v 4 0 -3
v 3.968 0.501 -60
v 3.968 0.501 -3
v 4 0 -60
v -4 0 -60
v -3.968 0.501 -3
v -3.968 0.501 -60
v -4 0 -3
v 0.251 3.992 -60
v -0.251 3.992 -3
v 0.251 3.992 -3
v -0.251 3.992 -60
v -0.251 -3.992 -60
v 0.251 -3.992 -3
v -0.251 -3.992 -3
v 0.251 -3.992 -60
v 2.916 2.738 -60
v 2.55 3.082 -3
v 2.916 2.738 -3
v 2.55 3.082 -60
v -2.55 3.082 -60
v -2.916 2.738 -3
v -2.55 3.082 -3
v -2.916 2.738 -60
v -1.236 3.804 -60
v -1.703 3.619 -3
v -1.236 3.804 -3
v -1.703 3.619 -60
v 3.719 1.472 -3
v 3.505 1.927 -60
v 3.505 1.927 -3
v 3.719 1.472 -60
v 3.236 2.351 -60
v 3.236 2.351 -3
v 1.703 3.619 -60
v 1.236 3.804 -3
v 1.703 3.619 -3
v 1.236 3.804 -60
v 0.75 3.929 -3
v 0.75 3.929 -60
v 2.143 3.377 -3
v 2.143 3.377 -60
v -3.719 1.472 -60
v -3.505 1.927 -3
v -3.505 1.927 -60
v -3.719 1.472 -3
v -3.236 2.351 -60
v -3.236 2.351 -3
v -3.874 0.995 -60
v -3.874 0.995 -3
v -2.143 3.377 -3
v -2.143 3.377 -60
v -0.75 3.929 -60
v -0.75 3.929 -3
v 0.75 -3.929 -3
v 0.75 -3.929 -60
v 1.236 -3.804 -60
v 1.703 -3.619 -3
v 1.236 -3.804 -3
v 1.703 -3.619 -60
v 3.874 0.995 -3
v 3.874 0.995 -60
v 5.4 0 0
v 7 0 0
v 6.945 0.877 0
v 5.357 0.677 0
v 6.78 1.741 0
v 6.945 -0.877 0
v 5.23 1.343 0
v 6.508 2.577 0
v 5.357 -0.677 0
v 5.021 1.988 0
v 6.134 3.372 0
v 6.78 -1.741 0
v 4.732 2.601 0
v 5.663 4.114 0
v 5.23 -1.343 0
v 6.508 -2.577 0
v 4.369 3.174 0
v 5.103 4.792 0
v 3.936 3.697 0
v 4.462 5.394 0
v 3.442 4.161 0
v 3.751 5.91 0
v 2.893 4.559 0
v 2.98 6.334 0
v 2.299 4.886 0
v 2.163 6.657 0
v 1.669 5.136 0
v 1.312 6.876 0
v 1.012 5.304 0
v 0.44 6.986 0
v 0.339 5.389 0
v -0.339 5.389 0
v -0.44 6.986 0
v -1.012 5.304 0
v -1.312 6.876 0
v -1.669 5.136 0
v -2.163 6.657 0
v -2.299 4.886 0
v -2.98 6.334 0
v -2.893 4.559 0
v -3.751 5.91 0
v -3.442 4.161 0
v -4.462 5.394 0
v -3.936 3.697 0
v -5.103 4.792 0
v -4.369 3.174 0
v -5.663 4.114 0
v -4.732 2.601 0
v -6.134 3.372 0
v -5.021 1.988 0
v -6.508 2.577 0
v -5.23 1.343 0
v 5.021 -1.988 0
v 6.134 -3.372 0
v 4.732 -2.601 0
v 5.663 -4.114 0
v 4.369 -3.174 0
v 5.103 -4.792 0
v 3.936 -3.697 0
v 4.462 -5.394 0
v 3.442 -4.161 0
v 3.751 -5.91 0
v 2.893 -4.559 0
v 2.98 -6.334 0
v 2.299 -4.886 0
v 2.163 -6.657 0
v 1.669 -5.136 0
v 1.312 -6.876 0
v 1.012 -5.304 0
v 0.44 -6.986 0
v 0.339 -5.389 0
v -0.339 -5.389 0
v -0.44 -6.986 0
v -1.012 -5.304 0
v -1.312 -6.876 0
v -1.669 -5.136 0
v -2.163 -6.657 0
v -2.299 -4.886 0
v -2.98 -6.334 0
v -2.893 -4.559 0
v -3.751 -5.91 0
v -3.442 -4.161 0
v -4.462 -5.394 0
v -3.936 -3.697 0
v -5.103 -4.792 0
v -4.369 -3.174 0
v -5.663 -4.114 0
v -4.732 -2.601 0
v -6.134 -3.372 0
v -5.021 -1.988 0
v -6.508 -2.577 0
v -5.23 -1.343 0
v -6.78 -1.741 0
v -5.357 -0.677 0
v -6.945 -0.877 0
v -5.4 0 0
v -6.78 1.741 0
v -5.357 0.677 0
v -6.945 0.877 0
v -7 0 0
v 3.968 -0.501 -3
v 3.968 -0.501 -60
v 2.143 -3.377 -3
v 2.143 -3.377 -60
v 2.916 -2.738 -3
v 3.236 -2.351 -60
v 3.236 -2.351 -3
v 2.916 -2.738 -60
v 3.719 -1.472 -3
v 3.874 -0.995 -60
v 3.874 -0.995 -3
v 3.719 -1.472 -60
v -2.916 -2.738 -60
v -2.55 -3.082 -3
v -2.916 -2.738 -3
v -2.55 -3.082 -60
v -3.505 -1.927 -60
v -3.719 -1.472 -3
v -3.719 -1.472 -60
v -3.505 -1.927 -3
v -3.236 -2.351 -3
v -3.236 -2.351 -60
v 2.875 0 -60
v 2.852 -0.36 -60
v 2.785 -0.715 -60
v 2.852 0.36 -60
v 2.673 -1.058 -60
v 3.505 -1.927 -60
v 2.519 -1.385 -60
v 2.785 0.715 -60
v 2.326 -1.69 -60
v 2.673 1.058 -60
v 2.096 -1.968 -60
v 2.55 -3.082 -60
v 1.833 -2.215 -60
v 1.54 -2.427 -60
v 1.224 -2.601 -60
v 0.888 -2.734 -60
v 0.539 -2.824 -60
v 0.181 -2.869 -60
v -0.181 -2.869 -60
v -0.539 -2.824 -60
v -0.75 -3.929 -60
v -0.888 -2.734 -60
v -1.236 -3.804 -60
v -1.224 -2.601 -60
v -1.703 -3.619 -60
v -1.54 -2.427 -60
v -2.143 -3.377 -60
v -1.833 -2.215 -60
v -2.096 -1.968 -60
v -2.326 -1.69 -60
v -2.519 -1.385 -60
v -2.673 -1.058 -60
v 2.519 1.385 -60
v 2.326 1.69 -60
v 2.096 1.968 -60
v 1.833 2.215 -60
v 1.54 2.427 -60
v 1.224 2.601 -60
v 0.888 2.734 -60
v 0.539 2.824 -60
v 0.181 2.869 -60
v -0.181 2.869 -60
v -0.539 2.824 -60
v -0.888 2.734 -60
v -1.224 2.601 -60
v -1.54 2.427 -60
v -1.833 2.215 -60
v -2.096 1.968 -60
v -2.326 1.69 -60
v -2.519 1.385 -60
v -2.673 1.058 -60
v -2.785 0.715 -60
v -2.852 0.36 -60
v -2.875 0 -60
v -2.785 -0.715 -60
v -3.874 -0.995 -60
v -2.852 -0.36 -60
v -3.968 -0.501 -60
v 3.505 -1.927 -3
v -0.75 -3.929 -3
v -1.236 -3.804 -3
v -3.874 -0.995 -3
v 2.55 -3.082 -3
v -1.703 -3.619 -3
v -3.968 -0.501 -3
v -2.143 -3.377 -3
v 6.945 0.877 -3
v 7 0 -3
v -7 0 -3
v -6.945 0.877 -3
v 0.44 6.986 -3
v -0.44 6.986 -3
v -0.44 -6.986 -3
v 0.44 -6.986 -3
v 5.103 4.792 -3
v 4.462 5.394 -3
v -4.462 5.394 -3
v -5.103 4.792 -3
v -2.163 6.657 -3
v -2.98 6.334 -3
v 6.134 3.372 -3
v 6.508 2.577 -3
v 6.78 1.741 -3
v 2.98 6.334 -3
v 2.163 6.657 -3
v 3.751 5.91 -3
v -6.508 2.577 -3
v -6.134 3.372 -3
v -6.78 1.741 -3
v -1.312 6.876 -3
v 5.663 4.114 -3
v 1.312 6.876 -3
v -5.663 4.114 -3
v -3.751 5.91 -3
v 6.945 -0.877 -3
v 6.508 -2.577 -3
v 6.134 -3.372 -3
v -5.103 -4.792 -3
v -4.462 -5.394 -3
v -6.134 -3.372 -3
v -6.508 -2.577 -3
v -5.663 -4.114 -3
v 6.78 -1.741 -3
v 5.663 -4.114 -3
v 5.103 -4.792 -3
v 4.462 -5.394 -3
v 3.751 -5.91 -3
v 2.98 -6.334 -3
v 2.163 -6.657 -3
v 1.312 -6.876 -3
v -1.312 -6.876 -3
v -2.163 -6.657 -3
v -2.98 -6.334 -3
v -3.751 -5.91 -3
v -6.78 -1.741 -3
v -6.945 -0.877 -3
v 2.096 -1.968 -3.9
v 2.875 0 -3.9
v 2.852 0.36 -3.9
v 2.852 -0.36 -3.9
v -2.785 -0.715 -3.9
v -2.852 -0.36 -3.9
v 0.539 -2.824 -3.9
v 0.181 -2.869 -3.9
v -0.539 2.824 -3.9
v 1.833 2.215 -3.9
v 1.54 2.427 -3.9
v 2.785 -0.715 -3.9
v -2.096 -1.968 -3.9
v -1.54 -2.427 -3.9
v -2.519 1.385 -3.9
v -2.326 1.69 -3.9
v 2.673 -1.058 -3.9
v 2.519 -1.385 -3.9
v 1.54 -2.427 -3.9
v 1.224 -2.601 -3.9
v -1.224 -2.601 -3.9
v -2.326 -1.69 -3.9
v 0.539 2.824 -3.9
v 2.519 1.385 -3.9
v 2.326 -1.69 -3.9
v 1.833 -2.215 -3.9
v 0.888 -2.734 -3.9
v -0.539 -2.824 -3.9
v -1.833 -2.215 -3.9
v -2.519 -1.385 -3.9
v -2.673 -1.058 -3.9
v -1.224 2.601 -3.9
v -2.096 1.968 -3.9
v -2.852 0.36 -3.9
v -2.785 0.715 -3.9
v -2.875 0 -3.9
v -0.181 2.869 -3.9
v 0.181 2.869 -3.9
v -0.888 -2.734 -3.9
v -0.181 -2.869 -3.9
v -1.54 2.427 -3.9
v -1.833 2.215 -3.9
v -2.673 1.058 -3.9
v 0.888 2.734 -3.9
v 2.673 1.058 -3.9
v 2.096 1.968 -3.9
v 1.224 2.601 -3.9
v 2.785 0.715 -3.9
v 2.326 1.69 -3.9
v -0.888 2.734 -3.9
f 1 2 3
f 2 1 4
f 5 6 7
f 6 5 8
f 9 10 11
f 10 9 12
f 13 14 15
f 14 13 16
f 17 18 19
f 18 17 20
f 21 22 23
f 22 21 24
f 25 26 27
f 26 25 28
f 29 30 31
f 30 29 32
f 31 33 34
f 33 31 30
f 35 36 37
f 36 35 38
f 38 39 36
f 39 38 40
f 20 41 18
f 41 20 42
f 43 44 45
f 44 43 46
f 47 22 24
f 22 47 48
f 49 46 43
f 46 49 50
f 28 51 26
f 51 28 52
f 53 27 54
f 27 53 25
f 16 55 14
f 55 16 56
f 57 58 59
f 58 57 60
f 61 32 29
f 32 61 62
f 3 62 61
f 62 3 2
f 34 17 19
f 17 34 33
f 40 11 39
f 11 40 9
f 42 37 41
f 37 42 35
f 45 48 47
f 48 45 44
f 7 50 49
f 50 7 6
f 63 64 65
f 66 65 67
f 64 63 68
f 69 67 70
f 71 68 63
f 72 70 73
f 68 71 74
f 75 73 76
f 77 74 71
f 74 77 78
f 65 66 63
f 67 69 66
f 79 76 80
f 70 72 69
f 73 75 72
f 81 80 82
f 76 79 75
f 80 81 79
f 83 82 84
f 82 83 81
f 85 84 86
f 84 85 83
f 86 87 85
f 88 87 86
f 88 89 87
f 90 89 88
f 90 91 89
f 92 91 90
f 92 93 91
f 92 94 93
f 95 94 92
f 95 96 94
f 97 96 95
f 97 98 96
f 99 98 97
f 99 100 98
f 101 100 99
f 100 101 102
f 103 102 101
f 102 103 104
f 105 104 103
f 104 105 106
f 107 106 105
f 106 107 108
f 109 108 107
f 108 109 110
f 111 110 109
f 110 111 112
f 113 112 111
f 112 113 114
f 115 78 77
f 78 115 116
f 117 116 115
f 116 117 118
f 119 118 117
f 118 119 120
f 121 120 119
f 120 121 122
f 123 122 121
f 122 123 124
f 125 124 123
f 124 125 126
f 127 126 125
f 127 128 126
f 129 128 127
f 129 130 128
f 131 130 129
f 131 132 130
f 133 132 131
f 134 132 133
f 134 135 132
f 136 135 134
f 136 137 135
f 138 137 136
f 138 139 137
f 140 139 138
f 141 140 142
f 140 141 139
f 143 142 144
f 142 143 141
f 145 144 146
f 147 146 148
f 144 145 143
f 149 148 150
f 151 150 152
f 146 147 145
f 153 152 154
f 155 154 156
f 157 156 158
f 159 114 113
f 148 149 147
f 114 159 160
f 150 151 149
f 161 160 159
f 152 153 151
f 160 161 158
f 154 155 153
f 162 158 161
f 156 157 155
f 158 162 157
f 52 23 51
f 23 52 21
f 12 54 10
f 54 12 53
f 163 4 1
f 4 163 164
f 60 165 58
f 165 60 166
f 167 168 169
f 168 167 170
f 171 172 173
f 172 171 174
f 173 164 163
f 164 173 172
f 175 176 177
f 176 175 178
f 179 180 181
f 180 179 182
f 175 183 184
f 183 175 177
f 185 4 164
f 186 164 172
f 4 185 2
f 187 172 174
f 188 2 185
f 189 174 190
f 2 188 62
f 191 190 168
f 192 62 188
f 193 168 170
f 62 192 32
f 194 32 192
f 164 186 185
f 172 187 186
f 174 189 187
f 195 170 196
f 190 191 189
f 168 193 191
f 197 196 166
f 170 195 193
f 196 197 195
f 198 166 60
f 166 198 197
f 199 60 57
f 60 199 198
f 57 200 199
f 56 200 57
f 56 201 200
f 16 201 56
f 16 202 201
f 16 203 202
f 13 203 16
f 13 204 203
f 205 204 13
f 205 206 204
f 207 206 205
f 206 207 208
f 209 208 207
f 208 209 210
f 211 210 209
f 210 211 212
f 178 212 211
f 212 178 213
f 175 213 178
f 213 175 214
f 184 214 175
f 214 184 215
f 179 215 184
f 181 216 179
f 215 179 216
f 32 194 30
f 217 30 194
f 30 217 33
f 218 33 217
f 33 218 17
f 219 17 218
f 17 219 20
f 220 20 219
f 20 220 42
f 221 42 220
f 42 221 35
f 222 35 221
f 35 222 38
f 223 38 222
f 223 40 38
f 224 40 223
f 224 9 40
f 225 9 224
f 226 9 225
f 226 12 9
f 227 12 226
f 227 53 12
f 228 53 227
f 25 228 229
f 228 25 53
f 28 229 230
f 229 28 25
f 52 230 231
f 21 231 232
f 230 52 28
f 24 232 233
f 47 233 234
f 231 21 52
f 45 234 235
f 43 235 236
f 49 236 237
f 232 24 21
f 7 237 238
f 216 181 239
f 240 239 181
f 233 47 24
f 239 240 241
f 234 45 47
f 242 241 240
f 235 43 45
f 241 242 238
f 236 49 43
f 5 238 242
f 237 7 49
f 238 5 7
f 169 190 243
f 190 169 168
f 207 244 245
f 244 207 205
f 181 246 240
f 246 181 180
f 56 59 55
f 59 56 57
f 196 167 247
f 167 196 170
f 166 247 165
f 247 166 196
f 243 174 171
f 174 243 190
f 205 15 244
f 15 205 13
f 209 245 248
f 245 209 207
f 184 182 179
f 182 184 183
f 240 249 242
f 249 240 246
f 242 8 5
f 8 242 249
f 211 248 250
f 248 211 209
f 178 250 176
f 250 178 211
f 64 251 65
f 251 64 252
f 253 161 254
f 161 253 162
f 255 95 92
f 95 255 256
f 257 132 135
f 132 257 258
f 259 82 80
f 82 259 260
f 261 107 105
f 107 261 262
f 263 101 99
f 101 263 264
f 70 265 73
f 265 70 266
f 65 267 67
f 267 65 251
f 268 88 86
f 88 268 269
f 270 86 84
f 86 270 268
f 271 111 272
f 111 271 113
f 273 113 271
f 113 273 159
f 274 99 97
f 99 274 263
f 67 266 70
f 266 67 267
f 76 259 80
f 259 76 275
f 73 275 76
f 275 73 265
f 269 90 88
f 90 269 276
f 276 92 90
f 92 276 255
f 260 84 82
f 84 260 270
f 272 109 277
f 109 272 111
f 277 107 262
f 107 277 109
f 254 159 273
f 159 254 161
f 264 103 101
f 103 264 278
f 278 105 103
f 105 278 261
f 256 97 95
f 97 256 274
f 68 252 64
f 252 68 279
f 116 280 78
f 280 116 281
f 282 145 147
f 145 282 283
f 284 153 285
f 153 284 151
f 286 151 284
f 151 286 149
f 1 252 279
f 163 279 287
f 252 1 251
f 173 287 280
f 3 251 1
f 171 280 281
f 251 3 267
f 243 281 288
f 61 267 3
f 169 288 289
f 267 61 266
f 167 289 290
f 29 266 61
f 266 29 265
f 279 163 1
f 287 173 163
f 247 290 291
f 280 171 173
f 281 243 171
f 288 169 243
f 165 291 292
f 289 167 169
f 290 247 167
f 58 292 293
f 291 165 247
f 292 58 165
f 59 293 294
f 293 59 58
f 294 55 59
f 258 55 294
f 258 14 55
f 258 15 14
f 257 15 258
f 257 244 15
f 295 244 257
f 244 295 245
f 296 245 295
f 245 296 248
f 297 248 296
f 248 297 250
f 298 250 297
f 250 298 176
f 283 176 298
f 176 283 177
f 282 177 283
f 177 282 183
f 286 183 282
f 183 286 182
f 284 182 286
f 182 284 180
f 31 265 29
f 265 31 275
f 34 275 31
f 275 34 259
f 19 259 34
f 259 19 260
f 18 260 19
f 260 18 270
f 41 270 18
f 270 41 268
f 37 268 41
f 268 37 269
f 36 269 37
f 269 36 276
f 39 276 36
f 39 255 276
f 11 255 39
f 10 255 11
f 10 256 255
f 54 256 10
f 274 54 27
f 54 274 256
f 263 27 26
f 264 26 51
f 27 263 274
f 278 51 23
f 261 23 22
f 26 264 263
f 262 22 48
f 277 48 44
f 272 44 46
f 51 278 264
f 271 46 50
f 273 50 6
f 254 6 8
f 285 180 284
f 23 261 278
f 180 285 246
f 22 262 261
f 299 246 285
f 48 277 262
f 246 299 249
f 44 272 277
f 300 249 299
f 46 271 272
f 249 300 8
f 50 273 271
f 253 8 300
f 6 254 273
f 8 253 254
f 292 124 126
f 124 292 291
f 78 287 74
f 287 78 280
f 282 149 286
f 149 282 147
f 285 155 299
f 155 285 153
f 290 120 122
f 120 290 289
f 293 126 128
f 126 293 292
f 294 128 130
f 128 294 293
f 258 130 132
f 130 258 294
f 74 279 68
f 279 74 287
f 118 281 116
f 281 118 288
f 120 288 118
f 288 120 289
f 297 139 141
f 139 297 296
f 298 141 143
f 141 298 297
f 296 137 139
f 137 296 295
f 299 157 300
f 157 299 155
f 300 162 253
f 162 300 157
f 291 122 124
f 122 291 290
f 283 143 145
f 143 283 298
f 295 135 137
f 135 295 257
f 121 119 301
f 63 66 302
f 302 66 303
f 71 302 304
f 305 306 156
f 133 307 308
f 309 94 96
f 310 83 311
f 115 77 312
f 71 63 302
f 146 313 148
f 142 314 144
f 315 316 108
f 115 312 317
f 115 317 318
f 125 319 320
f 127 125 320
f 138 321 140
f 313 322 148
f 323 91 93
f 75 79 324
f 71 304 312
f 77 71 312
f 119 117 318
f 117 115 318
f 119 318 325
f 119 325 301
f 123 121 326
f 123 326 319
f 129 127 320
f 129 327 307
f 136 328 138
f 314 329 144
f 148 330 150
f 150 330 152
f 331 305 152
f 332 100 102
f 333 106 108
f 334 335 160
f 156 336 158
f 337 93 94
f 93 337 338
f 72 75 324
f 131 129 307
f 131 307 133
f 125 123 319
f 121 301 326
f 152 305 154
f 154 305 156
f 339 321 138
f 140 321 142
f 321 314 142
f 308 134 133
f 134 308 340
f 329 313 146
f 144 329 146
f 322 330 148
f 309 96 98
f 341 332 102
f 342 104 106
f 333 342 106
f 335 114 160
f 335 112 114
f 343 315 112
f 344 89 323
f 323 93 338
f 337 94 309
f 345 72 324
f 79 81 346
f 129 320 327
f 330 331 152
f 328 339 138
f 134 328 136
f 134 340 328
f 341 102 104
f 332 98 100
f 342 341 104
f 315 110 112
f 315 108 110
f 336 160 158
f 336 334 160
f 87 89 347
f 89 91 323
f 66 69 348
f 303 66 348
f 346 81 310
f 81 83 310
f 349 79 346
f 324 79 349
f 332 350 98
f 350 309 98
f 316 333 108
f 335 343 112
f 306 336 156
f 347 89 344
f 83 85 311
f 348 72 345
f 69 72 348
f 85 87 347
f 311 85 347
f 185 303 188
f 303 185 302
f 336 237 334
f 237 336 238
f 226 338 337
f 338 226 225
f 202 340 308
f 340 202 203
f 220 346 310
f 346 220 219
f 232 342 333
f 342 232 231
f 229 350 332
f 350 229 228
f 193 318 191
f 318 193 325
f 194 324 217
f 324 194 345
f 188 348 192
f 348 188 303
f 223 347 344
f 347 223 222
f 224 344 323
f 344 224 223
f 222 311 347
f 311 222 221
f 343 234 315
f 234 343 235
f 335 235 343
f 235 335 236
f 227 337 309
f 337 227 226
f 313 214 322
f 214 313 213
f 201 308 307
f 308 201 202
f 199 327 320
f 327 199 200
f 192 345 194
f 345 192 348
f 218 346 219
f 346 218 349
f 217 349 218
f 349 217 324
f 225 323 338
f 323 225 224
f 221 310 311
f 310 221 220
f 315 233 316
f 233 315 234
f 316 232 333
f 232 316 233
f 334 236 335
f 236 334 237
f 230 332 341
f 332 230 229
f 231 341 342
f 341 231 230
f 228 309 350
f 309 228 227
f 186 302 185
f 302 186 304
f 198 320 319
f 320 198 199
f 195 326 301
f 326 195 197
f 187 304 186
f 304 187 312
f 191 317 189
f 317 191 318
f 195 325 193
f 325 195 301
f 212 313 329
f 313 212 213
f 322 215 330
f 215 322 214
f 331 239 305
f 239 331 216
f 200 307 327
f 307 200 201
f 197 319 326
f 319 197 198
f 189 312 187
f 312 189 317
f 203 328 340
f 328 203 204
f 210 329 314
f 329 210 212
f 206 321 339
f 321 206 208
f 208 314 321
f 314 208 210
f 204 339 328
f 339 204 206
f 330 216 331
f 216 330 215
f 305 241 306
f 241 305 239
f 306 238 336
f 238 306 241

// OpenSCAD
$fn = 50;


difference() {
	union() {
		translate(v = [0, 0, -60.0000000000]) {
			cylinder(h = 60, r = 4.0000000000);
		}
		translate(v = [0, 0, -3.0000000000]) {
			cylinder(h = 3, r = 7.0000000000);
		}
	}
	union() {
		translate(v = [0, 0, 0]) {
			rotate(a = [0, 0, 0]) {
				difference() {
					union() {
						#translate(v = [0, 0, -60.0000000000]) {
							cylinder(h = 60, r = 2.6000000000);
						}
						#translate(v = [0, 0, -3.9000000000]) {
							cylinder(h = 3.9000000000, r1 = 2.8750000000, r2 = 5.4000000000);
						}
						#translate(v = [0, 0, -60.0000000000]) {
							cylinder(h = 60, r = 2.8750000000);
						}
						#translate(v = [0, 0, -60.0000000000]) {
							cylinder(h = 60, r = 2.6000000000);
						}
					}
					union();
				}
			}
		}
	}
}
